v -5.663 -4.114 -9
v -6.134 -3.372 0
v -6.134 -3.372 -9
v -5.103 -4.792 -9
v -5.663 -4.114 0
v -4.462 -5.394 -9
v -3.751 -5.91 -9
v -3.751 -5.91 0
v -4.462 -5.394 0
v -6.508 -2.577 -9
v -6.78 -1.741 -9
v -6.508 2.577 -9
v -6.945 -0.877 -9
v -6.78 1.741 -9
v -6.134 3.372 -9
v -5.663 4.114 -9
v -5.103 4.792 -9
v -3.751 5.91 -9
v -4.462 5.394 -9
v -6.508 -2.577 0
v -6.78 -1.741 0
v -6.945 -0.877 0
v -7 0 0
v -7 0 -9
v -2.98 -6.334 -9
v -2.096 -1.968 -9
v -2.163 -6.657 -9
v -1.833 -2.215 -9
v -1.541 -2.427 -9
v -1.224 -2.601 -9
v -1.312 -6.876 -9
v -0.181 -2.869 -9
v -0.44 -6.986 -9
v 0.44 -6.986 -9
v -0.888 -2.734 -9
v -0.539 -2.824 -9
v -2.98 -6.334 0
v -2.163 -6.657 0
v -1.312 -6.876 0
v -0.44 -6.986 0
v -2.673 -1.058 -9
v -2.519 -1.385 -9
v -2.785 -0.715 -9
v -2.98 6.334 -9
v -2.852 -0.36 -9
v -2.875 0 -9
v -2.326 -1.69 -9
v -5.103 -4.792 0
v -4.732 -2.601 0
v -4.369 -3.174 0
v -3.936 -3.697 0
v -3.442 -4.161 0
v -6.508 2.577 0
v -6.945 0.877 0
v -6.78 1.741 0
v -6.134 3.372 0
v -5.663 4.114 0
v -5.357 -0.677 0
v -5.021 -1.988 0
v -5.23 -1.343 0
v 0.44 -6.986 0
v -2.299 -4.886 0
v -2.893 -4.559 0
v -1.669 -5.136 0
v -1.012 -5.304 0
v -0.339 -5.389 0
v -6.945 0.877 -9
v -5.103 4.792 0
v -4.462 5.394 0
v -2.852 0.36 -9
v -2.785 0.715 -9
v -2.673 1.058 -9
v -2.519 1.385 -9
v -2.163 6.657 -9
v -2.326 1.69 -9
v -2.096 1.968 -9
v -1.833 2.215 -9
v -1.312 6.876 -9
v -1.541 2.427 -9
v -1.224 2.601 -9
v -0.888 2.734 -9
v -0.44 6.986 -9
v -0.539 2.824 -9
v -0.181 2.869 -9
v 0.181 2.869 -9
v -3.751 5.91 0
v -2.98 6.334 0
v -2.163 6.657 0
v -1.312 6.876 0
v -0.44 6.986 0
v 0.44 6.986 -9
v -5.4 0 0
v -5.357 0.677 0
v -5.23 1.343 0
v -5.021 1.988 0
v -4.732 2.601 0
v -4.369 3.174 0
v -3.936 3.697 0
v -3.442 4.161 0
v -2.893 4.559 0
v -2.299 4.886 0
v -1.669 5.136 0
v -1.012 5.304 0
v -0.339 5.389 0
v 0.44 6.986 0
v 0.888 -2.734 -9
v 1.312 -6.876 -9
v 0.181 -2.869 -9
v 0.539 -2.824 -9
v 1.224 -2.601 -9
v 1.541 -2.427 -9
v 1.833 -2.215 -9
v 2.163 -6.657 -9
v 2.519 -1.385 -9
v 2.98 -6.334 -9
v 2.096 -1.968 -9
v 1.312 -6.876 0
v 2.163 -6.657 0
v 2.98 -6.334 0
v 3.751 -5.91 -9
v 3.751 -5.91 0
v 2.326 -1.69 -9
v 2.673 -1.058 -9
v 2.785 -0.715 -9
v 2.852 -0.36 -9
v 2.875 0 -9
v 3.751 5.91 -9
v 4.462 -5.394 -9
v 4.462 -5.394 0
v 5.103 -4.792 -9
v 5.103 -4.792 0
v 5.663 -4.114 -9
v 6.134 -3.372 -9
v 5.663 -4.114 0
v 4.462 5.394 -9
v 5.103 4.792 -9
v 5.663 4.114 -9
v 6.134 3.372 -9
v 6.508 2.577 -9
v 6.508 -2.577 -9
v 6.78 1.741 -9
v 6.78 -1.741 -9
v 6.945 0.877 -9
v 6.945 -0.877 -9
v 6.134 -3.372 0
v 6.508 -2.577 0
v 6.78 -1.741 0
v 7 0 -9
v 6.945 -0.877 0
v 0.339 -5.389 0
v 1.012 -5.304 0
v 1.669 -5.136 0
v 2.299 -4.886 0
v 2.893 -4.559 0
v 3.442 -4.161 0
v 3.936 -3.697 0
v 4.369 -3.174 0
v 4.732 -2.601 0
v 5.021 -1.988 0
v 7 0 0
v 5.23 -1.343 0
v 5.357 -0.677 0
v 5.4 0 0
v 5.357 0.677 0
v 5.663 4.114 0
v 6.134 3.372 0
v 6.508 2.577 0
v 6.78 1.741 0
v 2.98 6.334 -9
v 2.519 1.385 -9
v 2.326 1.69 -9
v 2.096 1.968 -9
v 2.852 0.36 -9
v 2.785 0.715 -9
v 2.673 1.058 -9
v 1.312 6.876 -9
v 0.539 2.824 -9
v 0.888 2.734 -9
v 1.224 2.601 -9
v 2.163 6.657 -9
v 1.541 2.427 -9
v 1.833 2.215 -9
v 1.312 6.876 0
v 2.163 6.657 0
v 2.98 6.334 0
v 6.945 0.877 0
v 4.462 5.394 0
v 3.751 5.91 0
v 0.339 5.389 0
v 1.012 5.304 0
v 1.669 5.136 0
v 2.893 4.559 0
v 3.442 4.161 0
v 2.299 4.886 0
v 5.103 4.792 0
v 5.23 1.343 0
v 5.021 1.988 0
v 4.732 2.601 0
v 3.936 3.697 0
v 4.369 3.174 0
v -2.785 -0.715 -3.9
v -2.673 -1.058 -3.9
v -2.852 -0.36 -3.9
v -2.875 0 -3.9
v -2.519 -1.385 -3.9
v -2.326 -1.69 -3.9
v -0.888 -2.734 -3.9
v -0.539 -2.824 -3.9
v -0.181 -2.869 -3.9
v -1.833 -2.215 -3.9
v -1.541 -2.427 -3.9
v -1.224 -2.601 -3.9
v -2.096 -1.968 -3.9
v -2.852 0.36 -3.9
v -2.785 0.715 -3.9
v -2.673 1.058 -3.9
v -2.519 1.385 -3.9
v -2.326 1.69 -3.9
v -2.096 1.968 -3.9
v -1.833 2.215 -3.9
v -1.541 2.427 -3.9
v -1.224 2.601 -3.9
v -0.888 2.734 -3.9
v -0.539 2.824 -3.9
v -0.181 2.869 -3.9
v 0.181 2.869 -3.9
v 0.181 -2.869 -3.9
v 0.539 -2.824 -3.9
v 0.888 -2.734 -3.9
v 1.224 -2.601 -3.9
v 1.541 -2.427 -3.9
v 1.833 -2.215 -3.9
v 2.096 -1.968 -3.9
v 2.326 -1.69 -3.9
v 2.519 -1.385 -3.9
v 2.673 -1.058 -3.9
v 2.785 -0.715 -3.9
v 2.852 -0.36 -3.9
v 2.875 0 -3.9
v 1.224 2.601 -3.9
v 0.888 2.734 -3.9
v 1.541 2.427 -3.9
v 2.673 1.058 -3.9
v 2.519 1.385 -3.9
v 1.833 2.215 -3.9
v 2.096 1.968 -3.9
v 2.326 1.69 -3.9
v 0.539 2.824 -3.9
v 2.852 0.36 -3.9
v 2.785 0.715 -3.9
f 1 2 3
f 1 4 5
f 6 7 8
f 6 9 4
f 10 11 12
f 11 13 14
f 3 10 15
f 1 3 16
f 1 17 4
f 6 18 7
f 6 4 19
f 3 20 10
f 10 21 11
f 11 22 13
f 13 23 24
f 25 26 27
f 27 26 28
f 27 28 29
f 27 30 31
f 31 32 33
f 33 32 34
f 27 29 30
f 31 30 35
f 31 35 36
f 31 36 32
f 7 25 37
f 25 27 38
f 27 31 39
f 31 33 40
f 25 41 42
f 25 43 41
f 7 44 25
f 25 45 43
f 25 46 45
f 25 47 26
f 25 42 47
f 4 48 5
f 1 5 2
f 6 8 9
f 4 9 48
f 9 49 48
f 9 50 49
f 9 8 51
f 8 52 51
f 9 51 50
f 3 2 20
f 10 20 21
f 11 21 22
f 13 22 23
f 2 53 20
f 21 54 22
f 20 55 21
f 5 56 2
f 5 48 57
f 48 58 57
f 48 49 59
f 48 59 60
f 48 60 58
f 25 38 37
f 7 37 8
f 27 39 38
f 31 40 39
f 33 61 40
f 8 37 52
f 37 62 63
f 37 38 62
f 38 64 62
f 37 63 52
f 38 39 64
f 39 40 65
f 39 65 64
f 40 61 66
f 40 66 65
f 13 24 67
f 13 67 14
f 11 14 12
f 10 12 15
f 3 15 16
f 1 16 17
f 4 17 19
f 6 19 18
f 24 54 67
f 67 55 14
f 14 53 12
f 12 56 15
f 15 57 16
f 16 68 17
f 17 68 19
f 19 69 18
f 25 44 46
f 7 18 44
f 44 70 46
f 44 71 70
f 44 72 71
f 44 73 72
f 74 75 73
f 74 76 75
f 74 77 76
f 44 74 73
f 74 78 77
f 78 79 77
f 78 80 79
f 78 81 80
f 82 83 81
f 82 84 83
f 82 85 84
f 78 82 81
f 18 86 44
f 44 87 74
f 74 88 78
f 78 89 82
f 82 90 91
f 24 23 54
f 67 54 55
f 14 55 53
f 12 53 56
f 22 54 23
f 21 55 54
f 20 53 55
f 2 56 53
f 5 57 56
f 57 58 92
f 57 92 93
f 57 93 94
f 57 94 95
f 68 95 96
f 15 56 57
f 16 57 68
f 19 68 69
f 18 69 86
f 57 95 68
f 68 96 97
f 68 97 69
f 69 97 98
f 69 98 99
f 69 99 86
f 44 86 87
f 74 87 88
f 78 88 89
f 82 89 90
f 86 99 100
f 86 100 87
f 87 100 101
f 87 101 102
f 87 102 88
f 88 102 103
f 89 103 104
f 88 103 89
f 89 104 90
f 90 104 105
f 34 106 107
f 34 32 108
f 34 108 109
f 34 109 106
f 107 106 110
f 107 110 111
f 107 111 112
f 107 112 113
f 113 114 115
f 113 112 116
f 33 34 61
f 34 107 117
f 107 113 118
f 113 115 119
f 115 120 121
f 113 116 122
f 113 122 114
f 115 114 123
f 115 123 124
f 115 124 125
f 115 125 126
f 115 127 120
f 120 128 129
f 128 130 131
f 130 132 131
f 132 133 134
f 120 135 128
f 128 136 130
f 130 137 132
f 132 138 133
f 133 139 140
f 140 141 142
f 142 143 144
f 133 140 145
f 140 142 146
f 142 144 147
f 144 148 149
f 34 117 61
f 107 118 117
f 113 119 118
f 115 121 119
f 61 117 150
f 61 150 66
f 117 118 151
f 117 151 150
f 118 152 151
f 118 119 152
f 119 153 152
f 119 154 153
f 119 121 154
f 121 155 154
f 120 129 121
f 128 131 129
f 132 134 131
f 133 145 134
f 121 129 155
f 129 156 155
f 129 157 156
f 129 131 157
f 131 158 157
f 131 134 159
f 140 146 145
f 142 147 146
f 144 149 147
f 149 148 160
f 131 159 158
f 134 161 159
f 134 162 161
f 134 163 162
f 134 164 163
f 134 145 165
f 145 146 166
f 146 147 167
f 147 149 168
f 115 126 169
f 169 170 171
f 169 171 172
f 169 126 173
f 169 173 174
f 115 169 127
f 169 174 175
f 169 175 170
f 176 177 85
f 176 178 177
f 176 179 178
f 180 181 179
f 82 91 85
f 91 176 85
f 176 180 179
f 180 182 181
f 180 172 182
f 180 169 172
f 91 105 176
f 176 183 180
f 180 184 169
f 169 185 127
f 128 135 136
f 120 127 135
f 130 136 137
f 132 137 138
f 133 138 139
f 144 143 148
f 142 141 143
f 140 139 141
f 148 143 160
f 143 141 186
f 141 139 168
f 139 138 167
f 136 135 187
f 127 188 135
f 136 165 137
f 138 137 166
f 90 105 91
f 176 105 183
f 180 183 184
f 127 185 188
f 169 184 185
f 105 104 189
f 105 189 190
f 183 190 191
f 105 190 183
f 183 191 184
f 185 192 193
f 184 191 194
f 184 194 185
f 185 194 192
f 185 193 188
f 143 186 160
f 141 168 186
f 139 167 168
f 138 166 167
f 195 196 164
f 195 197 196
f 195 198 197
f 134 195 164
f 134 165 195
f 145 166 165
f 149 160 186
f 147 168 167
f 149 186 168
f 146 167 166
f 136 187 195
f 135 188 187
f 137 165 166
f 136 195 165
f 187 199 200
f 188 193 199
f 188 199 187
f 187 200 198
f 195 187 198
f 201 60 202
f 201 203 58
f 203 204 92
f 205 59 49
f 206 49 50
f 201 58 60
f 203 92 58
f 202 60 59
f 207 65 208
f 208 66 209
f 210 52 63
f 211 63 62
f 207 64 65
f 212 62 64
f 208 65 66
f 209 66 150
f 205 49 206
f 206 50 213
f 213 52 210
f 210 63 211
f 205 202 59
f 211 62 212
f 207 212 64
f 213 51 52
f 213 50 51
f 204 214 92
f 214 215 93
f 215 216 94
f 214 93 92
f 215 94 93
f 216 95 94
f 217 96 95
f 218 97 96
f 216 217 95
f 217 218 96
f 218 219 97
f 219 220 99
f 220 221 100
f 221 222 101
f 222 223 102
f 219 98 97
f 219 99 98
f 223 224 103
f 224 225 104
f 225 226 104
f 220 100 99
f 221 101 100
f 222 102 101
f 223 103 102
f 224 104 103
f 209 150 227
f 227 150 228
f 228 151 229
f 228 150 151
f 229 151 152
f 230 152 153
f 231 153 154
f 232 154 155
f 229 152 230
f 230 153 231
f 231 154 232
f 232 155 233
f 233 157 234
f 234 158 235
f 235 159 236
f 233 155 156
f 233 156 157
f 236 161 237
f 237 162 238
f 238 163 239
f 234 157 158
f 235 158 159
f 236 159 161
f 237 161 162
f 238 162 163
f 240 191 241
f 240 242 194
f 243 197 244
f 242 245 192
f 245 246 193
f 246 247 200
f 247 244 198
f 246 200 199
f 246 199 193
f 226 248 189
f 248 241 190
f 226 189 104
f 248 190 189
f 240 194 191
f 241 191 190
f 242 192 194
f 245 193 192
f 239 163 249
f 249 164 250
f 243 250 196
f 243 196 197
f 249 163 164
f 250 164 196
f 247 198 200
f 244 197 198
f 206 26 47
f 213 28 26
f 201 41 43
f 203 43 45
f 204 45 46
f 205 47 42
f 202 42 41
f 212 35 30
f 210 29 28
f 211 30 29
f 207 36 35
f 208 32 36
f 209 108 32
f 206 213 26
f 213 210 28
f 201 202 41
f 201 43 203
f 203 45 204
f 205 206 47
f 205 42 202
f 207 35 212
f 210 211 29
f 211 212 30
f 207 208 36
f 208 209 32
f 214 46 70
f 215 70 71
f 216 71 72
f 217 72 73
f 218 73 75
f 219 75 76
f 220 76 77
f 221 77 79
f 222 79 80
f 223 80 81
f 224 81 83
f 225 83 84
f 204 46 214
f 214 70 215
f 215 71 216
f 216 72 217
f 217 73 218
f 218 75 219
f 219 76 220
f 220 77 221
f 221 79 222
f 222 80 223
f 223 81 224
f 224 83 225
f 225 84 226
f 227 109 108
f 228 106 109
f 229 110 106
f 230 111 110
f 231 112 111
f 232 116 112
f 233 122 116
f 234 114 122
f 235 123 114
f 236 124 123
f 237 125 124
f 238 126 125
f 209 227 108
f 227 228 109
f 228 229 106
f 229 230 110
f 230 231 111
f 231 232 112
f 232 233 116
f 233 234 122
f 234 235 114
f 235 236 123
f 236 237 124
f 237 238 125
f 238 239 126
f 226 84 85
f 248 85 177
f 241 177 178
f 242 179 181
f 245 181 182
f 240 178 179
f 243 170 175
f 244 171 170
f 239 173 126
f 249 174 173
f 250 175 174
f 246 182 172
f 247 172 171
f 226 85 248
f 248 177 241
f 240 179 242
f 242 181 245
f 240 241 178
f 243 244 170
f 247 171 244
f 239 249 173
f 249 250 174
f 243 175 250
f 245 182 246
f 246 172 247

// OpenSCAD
$fn = 50;

difference() {
	union() {
		translate(v = [0, 0, -9.0]) {
			cylinder(h = 9, r = 7.0);
		}
		#translate(v = [0, 0, -12.0]) {
			cylinder(h = 12, r = 2.875);
		}
	}
	union() {
		translate(v = [0, 0, 0]) {
			rotate(a = [0, 0, 0]) {
				difference() {
					union() {
						translate(v = [0, 0, -12.0]) {
							cylinder(h = 12, r = 2.6);
						}
						translate(v = [0, 0, -3.9]) {
							cylinder(h = 3.9, r1 = 2.875, r2 = 5.4);
						}
						translate(v = [0, 0, -12.0]) {
							cylinder(h = 12, r = 2.875);
						}
						translate(v = [0, 0, -12.0]) {
							cylinder(h = 12, r = 2.6);
						}
					}
					union();
				}
			}
		}
	}
}
